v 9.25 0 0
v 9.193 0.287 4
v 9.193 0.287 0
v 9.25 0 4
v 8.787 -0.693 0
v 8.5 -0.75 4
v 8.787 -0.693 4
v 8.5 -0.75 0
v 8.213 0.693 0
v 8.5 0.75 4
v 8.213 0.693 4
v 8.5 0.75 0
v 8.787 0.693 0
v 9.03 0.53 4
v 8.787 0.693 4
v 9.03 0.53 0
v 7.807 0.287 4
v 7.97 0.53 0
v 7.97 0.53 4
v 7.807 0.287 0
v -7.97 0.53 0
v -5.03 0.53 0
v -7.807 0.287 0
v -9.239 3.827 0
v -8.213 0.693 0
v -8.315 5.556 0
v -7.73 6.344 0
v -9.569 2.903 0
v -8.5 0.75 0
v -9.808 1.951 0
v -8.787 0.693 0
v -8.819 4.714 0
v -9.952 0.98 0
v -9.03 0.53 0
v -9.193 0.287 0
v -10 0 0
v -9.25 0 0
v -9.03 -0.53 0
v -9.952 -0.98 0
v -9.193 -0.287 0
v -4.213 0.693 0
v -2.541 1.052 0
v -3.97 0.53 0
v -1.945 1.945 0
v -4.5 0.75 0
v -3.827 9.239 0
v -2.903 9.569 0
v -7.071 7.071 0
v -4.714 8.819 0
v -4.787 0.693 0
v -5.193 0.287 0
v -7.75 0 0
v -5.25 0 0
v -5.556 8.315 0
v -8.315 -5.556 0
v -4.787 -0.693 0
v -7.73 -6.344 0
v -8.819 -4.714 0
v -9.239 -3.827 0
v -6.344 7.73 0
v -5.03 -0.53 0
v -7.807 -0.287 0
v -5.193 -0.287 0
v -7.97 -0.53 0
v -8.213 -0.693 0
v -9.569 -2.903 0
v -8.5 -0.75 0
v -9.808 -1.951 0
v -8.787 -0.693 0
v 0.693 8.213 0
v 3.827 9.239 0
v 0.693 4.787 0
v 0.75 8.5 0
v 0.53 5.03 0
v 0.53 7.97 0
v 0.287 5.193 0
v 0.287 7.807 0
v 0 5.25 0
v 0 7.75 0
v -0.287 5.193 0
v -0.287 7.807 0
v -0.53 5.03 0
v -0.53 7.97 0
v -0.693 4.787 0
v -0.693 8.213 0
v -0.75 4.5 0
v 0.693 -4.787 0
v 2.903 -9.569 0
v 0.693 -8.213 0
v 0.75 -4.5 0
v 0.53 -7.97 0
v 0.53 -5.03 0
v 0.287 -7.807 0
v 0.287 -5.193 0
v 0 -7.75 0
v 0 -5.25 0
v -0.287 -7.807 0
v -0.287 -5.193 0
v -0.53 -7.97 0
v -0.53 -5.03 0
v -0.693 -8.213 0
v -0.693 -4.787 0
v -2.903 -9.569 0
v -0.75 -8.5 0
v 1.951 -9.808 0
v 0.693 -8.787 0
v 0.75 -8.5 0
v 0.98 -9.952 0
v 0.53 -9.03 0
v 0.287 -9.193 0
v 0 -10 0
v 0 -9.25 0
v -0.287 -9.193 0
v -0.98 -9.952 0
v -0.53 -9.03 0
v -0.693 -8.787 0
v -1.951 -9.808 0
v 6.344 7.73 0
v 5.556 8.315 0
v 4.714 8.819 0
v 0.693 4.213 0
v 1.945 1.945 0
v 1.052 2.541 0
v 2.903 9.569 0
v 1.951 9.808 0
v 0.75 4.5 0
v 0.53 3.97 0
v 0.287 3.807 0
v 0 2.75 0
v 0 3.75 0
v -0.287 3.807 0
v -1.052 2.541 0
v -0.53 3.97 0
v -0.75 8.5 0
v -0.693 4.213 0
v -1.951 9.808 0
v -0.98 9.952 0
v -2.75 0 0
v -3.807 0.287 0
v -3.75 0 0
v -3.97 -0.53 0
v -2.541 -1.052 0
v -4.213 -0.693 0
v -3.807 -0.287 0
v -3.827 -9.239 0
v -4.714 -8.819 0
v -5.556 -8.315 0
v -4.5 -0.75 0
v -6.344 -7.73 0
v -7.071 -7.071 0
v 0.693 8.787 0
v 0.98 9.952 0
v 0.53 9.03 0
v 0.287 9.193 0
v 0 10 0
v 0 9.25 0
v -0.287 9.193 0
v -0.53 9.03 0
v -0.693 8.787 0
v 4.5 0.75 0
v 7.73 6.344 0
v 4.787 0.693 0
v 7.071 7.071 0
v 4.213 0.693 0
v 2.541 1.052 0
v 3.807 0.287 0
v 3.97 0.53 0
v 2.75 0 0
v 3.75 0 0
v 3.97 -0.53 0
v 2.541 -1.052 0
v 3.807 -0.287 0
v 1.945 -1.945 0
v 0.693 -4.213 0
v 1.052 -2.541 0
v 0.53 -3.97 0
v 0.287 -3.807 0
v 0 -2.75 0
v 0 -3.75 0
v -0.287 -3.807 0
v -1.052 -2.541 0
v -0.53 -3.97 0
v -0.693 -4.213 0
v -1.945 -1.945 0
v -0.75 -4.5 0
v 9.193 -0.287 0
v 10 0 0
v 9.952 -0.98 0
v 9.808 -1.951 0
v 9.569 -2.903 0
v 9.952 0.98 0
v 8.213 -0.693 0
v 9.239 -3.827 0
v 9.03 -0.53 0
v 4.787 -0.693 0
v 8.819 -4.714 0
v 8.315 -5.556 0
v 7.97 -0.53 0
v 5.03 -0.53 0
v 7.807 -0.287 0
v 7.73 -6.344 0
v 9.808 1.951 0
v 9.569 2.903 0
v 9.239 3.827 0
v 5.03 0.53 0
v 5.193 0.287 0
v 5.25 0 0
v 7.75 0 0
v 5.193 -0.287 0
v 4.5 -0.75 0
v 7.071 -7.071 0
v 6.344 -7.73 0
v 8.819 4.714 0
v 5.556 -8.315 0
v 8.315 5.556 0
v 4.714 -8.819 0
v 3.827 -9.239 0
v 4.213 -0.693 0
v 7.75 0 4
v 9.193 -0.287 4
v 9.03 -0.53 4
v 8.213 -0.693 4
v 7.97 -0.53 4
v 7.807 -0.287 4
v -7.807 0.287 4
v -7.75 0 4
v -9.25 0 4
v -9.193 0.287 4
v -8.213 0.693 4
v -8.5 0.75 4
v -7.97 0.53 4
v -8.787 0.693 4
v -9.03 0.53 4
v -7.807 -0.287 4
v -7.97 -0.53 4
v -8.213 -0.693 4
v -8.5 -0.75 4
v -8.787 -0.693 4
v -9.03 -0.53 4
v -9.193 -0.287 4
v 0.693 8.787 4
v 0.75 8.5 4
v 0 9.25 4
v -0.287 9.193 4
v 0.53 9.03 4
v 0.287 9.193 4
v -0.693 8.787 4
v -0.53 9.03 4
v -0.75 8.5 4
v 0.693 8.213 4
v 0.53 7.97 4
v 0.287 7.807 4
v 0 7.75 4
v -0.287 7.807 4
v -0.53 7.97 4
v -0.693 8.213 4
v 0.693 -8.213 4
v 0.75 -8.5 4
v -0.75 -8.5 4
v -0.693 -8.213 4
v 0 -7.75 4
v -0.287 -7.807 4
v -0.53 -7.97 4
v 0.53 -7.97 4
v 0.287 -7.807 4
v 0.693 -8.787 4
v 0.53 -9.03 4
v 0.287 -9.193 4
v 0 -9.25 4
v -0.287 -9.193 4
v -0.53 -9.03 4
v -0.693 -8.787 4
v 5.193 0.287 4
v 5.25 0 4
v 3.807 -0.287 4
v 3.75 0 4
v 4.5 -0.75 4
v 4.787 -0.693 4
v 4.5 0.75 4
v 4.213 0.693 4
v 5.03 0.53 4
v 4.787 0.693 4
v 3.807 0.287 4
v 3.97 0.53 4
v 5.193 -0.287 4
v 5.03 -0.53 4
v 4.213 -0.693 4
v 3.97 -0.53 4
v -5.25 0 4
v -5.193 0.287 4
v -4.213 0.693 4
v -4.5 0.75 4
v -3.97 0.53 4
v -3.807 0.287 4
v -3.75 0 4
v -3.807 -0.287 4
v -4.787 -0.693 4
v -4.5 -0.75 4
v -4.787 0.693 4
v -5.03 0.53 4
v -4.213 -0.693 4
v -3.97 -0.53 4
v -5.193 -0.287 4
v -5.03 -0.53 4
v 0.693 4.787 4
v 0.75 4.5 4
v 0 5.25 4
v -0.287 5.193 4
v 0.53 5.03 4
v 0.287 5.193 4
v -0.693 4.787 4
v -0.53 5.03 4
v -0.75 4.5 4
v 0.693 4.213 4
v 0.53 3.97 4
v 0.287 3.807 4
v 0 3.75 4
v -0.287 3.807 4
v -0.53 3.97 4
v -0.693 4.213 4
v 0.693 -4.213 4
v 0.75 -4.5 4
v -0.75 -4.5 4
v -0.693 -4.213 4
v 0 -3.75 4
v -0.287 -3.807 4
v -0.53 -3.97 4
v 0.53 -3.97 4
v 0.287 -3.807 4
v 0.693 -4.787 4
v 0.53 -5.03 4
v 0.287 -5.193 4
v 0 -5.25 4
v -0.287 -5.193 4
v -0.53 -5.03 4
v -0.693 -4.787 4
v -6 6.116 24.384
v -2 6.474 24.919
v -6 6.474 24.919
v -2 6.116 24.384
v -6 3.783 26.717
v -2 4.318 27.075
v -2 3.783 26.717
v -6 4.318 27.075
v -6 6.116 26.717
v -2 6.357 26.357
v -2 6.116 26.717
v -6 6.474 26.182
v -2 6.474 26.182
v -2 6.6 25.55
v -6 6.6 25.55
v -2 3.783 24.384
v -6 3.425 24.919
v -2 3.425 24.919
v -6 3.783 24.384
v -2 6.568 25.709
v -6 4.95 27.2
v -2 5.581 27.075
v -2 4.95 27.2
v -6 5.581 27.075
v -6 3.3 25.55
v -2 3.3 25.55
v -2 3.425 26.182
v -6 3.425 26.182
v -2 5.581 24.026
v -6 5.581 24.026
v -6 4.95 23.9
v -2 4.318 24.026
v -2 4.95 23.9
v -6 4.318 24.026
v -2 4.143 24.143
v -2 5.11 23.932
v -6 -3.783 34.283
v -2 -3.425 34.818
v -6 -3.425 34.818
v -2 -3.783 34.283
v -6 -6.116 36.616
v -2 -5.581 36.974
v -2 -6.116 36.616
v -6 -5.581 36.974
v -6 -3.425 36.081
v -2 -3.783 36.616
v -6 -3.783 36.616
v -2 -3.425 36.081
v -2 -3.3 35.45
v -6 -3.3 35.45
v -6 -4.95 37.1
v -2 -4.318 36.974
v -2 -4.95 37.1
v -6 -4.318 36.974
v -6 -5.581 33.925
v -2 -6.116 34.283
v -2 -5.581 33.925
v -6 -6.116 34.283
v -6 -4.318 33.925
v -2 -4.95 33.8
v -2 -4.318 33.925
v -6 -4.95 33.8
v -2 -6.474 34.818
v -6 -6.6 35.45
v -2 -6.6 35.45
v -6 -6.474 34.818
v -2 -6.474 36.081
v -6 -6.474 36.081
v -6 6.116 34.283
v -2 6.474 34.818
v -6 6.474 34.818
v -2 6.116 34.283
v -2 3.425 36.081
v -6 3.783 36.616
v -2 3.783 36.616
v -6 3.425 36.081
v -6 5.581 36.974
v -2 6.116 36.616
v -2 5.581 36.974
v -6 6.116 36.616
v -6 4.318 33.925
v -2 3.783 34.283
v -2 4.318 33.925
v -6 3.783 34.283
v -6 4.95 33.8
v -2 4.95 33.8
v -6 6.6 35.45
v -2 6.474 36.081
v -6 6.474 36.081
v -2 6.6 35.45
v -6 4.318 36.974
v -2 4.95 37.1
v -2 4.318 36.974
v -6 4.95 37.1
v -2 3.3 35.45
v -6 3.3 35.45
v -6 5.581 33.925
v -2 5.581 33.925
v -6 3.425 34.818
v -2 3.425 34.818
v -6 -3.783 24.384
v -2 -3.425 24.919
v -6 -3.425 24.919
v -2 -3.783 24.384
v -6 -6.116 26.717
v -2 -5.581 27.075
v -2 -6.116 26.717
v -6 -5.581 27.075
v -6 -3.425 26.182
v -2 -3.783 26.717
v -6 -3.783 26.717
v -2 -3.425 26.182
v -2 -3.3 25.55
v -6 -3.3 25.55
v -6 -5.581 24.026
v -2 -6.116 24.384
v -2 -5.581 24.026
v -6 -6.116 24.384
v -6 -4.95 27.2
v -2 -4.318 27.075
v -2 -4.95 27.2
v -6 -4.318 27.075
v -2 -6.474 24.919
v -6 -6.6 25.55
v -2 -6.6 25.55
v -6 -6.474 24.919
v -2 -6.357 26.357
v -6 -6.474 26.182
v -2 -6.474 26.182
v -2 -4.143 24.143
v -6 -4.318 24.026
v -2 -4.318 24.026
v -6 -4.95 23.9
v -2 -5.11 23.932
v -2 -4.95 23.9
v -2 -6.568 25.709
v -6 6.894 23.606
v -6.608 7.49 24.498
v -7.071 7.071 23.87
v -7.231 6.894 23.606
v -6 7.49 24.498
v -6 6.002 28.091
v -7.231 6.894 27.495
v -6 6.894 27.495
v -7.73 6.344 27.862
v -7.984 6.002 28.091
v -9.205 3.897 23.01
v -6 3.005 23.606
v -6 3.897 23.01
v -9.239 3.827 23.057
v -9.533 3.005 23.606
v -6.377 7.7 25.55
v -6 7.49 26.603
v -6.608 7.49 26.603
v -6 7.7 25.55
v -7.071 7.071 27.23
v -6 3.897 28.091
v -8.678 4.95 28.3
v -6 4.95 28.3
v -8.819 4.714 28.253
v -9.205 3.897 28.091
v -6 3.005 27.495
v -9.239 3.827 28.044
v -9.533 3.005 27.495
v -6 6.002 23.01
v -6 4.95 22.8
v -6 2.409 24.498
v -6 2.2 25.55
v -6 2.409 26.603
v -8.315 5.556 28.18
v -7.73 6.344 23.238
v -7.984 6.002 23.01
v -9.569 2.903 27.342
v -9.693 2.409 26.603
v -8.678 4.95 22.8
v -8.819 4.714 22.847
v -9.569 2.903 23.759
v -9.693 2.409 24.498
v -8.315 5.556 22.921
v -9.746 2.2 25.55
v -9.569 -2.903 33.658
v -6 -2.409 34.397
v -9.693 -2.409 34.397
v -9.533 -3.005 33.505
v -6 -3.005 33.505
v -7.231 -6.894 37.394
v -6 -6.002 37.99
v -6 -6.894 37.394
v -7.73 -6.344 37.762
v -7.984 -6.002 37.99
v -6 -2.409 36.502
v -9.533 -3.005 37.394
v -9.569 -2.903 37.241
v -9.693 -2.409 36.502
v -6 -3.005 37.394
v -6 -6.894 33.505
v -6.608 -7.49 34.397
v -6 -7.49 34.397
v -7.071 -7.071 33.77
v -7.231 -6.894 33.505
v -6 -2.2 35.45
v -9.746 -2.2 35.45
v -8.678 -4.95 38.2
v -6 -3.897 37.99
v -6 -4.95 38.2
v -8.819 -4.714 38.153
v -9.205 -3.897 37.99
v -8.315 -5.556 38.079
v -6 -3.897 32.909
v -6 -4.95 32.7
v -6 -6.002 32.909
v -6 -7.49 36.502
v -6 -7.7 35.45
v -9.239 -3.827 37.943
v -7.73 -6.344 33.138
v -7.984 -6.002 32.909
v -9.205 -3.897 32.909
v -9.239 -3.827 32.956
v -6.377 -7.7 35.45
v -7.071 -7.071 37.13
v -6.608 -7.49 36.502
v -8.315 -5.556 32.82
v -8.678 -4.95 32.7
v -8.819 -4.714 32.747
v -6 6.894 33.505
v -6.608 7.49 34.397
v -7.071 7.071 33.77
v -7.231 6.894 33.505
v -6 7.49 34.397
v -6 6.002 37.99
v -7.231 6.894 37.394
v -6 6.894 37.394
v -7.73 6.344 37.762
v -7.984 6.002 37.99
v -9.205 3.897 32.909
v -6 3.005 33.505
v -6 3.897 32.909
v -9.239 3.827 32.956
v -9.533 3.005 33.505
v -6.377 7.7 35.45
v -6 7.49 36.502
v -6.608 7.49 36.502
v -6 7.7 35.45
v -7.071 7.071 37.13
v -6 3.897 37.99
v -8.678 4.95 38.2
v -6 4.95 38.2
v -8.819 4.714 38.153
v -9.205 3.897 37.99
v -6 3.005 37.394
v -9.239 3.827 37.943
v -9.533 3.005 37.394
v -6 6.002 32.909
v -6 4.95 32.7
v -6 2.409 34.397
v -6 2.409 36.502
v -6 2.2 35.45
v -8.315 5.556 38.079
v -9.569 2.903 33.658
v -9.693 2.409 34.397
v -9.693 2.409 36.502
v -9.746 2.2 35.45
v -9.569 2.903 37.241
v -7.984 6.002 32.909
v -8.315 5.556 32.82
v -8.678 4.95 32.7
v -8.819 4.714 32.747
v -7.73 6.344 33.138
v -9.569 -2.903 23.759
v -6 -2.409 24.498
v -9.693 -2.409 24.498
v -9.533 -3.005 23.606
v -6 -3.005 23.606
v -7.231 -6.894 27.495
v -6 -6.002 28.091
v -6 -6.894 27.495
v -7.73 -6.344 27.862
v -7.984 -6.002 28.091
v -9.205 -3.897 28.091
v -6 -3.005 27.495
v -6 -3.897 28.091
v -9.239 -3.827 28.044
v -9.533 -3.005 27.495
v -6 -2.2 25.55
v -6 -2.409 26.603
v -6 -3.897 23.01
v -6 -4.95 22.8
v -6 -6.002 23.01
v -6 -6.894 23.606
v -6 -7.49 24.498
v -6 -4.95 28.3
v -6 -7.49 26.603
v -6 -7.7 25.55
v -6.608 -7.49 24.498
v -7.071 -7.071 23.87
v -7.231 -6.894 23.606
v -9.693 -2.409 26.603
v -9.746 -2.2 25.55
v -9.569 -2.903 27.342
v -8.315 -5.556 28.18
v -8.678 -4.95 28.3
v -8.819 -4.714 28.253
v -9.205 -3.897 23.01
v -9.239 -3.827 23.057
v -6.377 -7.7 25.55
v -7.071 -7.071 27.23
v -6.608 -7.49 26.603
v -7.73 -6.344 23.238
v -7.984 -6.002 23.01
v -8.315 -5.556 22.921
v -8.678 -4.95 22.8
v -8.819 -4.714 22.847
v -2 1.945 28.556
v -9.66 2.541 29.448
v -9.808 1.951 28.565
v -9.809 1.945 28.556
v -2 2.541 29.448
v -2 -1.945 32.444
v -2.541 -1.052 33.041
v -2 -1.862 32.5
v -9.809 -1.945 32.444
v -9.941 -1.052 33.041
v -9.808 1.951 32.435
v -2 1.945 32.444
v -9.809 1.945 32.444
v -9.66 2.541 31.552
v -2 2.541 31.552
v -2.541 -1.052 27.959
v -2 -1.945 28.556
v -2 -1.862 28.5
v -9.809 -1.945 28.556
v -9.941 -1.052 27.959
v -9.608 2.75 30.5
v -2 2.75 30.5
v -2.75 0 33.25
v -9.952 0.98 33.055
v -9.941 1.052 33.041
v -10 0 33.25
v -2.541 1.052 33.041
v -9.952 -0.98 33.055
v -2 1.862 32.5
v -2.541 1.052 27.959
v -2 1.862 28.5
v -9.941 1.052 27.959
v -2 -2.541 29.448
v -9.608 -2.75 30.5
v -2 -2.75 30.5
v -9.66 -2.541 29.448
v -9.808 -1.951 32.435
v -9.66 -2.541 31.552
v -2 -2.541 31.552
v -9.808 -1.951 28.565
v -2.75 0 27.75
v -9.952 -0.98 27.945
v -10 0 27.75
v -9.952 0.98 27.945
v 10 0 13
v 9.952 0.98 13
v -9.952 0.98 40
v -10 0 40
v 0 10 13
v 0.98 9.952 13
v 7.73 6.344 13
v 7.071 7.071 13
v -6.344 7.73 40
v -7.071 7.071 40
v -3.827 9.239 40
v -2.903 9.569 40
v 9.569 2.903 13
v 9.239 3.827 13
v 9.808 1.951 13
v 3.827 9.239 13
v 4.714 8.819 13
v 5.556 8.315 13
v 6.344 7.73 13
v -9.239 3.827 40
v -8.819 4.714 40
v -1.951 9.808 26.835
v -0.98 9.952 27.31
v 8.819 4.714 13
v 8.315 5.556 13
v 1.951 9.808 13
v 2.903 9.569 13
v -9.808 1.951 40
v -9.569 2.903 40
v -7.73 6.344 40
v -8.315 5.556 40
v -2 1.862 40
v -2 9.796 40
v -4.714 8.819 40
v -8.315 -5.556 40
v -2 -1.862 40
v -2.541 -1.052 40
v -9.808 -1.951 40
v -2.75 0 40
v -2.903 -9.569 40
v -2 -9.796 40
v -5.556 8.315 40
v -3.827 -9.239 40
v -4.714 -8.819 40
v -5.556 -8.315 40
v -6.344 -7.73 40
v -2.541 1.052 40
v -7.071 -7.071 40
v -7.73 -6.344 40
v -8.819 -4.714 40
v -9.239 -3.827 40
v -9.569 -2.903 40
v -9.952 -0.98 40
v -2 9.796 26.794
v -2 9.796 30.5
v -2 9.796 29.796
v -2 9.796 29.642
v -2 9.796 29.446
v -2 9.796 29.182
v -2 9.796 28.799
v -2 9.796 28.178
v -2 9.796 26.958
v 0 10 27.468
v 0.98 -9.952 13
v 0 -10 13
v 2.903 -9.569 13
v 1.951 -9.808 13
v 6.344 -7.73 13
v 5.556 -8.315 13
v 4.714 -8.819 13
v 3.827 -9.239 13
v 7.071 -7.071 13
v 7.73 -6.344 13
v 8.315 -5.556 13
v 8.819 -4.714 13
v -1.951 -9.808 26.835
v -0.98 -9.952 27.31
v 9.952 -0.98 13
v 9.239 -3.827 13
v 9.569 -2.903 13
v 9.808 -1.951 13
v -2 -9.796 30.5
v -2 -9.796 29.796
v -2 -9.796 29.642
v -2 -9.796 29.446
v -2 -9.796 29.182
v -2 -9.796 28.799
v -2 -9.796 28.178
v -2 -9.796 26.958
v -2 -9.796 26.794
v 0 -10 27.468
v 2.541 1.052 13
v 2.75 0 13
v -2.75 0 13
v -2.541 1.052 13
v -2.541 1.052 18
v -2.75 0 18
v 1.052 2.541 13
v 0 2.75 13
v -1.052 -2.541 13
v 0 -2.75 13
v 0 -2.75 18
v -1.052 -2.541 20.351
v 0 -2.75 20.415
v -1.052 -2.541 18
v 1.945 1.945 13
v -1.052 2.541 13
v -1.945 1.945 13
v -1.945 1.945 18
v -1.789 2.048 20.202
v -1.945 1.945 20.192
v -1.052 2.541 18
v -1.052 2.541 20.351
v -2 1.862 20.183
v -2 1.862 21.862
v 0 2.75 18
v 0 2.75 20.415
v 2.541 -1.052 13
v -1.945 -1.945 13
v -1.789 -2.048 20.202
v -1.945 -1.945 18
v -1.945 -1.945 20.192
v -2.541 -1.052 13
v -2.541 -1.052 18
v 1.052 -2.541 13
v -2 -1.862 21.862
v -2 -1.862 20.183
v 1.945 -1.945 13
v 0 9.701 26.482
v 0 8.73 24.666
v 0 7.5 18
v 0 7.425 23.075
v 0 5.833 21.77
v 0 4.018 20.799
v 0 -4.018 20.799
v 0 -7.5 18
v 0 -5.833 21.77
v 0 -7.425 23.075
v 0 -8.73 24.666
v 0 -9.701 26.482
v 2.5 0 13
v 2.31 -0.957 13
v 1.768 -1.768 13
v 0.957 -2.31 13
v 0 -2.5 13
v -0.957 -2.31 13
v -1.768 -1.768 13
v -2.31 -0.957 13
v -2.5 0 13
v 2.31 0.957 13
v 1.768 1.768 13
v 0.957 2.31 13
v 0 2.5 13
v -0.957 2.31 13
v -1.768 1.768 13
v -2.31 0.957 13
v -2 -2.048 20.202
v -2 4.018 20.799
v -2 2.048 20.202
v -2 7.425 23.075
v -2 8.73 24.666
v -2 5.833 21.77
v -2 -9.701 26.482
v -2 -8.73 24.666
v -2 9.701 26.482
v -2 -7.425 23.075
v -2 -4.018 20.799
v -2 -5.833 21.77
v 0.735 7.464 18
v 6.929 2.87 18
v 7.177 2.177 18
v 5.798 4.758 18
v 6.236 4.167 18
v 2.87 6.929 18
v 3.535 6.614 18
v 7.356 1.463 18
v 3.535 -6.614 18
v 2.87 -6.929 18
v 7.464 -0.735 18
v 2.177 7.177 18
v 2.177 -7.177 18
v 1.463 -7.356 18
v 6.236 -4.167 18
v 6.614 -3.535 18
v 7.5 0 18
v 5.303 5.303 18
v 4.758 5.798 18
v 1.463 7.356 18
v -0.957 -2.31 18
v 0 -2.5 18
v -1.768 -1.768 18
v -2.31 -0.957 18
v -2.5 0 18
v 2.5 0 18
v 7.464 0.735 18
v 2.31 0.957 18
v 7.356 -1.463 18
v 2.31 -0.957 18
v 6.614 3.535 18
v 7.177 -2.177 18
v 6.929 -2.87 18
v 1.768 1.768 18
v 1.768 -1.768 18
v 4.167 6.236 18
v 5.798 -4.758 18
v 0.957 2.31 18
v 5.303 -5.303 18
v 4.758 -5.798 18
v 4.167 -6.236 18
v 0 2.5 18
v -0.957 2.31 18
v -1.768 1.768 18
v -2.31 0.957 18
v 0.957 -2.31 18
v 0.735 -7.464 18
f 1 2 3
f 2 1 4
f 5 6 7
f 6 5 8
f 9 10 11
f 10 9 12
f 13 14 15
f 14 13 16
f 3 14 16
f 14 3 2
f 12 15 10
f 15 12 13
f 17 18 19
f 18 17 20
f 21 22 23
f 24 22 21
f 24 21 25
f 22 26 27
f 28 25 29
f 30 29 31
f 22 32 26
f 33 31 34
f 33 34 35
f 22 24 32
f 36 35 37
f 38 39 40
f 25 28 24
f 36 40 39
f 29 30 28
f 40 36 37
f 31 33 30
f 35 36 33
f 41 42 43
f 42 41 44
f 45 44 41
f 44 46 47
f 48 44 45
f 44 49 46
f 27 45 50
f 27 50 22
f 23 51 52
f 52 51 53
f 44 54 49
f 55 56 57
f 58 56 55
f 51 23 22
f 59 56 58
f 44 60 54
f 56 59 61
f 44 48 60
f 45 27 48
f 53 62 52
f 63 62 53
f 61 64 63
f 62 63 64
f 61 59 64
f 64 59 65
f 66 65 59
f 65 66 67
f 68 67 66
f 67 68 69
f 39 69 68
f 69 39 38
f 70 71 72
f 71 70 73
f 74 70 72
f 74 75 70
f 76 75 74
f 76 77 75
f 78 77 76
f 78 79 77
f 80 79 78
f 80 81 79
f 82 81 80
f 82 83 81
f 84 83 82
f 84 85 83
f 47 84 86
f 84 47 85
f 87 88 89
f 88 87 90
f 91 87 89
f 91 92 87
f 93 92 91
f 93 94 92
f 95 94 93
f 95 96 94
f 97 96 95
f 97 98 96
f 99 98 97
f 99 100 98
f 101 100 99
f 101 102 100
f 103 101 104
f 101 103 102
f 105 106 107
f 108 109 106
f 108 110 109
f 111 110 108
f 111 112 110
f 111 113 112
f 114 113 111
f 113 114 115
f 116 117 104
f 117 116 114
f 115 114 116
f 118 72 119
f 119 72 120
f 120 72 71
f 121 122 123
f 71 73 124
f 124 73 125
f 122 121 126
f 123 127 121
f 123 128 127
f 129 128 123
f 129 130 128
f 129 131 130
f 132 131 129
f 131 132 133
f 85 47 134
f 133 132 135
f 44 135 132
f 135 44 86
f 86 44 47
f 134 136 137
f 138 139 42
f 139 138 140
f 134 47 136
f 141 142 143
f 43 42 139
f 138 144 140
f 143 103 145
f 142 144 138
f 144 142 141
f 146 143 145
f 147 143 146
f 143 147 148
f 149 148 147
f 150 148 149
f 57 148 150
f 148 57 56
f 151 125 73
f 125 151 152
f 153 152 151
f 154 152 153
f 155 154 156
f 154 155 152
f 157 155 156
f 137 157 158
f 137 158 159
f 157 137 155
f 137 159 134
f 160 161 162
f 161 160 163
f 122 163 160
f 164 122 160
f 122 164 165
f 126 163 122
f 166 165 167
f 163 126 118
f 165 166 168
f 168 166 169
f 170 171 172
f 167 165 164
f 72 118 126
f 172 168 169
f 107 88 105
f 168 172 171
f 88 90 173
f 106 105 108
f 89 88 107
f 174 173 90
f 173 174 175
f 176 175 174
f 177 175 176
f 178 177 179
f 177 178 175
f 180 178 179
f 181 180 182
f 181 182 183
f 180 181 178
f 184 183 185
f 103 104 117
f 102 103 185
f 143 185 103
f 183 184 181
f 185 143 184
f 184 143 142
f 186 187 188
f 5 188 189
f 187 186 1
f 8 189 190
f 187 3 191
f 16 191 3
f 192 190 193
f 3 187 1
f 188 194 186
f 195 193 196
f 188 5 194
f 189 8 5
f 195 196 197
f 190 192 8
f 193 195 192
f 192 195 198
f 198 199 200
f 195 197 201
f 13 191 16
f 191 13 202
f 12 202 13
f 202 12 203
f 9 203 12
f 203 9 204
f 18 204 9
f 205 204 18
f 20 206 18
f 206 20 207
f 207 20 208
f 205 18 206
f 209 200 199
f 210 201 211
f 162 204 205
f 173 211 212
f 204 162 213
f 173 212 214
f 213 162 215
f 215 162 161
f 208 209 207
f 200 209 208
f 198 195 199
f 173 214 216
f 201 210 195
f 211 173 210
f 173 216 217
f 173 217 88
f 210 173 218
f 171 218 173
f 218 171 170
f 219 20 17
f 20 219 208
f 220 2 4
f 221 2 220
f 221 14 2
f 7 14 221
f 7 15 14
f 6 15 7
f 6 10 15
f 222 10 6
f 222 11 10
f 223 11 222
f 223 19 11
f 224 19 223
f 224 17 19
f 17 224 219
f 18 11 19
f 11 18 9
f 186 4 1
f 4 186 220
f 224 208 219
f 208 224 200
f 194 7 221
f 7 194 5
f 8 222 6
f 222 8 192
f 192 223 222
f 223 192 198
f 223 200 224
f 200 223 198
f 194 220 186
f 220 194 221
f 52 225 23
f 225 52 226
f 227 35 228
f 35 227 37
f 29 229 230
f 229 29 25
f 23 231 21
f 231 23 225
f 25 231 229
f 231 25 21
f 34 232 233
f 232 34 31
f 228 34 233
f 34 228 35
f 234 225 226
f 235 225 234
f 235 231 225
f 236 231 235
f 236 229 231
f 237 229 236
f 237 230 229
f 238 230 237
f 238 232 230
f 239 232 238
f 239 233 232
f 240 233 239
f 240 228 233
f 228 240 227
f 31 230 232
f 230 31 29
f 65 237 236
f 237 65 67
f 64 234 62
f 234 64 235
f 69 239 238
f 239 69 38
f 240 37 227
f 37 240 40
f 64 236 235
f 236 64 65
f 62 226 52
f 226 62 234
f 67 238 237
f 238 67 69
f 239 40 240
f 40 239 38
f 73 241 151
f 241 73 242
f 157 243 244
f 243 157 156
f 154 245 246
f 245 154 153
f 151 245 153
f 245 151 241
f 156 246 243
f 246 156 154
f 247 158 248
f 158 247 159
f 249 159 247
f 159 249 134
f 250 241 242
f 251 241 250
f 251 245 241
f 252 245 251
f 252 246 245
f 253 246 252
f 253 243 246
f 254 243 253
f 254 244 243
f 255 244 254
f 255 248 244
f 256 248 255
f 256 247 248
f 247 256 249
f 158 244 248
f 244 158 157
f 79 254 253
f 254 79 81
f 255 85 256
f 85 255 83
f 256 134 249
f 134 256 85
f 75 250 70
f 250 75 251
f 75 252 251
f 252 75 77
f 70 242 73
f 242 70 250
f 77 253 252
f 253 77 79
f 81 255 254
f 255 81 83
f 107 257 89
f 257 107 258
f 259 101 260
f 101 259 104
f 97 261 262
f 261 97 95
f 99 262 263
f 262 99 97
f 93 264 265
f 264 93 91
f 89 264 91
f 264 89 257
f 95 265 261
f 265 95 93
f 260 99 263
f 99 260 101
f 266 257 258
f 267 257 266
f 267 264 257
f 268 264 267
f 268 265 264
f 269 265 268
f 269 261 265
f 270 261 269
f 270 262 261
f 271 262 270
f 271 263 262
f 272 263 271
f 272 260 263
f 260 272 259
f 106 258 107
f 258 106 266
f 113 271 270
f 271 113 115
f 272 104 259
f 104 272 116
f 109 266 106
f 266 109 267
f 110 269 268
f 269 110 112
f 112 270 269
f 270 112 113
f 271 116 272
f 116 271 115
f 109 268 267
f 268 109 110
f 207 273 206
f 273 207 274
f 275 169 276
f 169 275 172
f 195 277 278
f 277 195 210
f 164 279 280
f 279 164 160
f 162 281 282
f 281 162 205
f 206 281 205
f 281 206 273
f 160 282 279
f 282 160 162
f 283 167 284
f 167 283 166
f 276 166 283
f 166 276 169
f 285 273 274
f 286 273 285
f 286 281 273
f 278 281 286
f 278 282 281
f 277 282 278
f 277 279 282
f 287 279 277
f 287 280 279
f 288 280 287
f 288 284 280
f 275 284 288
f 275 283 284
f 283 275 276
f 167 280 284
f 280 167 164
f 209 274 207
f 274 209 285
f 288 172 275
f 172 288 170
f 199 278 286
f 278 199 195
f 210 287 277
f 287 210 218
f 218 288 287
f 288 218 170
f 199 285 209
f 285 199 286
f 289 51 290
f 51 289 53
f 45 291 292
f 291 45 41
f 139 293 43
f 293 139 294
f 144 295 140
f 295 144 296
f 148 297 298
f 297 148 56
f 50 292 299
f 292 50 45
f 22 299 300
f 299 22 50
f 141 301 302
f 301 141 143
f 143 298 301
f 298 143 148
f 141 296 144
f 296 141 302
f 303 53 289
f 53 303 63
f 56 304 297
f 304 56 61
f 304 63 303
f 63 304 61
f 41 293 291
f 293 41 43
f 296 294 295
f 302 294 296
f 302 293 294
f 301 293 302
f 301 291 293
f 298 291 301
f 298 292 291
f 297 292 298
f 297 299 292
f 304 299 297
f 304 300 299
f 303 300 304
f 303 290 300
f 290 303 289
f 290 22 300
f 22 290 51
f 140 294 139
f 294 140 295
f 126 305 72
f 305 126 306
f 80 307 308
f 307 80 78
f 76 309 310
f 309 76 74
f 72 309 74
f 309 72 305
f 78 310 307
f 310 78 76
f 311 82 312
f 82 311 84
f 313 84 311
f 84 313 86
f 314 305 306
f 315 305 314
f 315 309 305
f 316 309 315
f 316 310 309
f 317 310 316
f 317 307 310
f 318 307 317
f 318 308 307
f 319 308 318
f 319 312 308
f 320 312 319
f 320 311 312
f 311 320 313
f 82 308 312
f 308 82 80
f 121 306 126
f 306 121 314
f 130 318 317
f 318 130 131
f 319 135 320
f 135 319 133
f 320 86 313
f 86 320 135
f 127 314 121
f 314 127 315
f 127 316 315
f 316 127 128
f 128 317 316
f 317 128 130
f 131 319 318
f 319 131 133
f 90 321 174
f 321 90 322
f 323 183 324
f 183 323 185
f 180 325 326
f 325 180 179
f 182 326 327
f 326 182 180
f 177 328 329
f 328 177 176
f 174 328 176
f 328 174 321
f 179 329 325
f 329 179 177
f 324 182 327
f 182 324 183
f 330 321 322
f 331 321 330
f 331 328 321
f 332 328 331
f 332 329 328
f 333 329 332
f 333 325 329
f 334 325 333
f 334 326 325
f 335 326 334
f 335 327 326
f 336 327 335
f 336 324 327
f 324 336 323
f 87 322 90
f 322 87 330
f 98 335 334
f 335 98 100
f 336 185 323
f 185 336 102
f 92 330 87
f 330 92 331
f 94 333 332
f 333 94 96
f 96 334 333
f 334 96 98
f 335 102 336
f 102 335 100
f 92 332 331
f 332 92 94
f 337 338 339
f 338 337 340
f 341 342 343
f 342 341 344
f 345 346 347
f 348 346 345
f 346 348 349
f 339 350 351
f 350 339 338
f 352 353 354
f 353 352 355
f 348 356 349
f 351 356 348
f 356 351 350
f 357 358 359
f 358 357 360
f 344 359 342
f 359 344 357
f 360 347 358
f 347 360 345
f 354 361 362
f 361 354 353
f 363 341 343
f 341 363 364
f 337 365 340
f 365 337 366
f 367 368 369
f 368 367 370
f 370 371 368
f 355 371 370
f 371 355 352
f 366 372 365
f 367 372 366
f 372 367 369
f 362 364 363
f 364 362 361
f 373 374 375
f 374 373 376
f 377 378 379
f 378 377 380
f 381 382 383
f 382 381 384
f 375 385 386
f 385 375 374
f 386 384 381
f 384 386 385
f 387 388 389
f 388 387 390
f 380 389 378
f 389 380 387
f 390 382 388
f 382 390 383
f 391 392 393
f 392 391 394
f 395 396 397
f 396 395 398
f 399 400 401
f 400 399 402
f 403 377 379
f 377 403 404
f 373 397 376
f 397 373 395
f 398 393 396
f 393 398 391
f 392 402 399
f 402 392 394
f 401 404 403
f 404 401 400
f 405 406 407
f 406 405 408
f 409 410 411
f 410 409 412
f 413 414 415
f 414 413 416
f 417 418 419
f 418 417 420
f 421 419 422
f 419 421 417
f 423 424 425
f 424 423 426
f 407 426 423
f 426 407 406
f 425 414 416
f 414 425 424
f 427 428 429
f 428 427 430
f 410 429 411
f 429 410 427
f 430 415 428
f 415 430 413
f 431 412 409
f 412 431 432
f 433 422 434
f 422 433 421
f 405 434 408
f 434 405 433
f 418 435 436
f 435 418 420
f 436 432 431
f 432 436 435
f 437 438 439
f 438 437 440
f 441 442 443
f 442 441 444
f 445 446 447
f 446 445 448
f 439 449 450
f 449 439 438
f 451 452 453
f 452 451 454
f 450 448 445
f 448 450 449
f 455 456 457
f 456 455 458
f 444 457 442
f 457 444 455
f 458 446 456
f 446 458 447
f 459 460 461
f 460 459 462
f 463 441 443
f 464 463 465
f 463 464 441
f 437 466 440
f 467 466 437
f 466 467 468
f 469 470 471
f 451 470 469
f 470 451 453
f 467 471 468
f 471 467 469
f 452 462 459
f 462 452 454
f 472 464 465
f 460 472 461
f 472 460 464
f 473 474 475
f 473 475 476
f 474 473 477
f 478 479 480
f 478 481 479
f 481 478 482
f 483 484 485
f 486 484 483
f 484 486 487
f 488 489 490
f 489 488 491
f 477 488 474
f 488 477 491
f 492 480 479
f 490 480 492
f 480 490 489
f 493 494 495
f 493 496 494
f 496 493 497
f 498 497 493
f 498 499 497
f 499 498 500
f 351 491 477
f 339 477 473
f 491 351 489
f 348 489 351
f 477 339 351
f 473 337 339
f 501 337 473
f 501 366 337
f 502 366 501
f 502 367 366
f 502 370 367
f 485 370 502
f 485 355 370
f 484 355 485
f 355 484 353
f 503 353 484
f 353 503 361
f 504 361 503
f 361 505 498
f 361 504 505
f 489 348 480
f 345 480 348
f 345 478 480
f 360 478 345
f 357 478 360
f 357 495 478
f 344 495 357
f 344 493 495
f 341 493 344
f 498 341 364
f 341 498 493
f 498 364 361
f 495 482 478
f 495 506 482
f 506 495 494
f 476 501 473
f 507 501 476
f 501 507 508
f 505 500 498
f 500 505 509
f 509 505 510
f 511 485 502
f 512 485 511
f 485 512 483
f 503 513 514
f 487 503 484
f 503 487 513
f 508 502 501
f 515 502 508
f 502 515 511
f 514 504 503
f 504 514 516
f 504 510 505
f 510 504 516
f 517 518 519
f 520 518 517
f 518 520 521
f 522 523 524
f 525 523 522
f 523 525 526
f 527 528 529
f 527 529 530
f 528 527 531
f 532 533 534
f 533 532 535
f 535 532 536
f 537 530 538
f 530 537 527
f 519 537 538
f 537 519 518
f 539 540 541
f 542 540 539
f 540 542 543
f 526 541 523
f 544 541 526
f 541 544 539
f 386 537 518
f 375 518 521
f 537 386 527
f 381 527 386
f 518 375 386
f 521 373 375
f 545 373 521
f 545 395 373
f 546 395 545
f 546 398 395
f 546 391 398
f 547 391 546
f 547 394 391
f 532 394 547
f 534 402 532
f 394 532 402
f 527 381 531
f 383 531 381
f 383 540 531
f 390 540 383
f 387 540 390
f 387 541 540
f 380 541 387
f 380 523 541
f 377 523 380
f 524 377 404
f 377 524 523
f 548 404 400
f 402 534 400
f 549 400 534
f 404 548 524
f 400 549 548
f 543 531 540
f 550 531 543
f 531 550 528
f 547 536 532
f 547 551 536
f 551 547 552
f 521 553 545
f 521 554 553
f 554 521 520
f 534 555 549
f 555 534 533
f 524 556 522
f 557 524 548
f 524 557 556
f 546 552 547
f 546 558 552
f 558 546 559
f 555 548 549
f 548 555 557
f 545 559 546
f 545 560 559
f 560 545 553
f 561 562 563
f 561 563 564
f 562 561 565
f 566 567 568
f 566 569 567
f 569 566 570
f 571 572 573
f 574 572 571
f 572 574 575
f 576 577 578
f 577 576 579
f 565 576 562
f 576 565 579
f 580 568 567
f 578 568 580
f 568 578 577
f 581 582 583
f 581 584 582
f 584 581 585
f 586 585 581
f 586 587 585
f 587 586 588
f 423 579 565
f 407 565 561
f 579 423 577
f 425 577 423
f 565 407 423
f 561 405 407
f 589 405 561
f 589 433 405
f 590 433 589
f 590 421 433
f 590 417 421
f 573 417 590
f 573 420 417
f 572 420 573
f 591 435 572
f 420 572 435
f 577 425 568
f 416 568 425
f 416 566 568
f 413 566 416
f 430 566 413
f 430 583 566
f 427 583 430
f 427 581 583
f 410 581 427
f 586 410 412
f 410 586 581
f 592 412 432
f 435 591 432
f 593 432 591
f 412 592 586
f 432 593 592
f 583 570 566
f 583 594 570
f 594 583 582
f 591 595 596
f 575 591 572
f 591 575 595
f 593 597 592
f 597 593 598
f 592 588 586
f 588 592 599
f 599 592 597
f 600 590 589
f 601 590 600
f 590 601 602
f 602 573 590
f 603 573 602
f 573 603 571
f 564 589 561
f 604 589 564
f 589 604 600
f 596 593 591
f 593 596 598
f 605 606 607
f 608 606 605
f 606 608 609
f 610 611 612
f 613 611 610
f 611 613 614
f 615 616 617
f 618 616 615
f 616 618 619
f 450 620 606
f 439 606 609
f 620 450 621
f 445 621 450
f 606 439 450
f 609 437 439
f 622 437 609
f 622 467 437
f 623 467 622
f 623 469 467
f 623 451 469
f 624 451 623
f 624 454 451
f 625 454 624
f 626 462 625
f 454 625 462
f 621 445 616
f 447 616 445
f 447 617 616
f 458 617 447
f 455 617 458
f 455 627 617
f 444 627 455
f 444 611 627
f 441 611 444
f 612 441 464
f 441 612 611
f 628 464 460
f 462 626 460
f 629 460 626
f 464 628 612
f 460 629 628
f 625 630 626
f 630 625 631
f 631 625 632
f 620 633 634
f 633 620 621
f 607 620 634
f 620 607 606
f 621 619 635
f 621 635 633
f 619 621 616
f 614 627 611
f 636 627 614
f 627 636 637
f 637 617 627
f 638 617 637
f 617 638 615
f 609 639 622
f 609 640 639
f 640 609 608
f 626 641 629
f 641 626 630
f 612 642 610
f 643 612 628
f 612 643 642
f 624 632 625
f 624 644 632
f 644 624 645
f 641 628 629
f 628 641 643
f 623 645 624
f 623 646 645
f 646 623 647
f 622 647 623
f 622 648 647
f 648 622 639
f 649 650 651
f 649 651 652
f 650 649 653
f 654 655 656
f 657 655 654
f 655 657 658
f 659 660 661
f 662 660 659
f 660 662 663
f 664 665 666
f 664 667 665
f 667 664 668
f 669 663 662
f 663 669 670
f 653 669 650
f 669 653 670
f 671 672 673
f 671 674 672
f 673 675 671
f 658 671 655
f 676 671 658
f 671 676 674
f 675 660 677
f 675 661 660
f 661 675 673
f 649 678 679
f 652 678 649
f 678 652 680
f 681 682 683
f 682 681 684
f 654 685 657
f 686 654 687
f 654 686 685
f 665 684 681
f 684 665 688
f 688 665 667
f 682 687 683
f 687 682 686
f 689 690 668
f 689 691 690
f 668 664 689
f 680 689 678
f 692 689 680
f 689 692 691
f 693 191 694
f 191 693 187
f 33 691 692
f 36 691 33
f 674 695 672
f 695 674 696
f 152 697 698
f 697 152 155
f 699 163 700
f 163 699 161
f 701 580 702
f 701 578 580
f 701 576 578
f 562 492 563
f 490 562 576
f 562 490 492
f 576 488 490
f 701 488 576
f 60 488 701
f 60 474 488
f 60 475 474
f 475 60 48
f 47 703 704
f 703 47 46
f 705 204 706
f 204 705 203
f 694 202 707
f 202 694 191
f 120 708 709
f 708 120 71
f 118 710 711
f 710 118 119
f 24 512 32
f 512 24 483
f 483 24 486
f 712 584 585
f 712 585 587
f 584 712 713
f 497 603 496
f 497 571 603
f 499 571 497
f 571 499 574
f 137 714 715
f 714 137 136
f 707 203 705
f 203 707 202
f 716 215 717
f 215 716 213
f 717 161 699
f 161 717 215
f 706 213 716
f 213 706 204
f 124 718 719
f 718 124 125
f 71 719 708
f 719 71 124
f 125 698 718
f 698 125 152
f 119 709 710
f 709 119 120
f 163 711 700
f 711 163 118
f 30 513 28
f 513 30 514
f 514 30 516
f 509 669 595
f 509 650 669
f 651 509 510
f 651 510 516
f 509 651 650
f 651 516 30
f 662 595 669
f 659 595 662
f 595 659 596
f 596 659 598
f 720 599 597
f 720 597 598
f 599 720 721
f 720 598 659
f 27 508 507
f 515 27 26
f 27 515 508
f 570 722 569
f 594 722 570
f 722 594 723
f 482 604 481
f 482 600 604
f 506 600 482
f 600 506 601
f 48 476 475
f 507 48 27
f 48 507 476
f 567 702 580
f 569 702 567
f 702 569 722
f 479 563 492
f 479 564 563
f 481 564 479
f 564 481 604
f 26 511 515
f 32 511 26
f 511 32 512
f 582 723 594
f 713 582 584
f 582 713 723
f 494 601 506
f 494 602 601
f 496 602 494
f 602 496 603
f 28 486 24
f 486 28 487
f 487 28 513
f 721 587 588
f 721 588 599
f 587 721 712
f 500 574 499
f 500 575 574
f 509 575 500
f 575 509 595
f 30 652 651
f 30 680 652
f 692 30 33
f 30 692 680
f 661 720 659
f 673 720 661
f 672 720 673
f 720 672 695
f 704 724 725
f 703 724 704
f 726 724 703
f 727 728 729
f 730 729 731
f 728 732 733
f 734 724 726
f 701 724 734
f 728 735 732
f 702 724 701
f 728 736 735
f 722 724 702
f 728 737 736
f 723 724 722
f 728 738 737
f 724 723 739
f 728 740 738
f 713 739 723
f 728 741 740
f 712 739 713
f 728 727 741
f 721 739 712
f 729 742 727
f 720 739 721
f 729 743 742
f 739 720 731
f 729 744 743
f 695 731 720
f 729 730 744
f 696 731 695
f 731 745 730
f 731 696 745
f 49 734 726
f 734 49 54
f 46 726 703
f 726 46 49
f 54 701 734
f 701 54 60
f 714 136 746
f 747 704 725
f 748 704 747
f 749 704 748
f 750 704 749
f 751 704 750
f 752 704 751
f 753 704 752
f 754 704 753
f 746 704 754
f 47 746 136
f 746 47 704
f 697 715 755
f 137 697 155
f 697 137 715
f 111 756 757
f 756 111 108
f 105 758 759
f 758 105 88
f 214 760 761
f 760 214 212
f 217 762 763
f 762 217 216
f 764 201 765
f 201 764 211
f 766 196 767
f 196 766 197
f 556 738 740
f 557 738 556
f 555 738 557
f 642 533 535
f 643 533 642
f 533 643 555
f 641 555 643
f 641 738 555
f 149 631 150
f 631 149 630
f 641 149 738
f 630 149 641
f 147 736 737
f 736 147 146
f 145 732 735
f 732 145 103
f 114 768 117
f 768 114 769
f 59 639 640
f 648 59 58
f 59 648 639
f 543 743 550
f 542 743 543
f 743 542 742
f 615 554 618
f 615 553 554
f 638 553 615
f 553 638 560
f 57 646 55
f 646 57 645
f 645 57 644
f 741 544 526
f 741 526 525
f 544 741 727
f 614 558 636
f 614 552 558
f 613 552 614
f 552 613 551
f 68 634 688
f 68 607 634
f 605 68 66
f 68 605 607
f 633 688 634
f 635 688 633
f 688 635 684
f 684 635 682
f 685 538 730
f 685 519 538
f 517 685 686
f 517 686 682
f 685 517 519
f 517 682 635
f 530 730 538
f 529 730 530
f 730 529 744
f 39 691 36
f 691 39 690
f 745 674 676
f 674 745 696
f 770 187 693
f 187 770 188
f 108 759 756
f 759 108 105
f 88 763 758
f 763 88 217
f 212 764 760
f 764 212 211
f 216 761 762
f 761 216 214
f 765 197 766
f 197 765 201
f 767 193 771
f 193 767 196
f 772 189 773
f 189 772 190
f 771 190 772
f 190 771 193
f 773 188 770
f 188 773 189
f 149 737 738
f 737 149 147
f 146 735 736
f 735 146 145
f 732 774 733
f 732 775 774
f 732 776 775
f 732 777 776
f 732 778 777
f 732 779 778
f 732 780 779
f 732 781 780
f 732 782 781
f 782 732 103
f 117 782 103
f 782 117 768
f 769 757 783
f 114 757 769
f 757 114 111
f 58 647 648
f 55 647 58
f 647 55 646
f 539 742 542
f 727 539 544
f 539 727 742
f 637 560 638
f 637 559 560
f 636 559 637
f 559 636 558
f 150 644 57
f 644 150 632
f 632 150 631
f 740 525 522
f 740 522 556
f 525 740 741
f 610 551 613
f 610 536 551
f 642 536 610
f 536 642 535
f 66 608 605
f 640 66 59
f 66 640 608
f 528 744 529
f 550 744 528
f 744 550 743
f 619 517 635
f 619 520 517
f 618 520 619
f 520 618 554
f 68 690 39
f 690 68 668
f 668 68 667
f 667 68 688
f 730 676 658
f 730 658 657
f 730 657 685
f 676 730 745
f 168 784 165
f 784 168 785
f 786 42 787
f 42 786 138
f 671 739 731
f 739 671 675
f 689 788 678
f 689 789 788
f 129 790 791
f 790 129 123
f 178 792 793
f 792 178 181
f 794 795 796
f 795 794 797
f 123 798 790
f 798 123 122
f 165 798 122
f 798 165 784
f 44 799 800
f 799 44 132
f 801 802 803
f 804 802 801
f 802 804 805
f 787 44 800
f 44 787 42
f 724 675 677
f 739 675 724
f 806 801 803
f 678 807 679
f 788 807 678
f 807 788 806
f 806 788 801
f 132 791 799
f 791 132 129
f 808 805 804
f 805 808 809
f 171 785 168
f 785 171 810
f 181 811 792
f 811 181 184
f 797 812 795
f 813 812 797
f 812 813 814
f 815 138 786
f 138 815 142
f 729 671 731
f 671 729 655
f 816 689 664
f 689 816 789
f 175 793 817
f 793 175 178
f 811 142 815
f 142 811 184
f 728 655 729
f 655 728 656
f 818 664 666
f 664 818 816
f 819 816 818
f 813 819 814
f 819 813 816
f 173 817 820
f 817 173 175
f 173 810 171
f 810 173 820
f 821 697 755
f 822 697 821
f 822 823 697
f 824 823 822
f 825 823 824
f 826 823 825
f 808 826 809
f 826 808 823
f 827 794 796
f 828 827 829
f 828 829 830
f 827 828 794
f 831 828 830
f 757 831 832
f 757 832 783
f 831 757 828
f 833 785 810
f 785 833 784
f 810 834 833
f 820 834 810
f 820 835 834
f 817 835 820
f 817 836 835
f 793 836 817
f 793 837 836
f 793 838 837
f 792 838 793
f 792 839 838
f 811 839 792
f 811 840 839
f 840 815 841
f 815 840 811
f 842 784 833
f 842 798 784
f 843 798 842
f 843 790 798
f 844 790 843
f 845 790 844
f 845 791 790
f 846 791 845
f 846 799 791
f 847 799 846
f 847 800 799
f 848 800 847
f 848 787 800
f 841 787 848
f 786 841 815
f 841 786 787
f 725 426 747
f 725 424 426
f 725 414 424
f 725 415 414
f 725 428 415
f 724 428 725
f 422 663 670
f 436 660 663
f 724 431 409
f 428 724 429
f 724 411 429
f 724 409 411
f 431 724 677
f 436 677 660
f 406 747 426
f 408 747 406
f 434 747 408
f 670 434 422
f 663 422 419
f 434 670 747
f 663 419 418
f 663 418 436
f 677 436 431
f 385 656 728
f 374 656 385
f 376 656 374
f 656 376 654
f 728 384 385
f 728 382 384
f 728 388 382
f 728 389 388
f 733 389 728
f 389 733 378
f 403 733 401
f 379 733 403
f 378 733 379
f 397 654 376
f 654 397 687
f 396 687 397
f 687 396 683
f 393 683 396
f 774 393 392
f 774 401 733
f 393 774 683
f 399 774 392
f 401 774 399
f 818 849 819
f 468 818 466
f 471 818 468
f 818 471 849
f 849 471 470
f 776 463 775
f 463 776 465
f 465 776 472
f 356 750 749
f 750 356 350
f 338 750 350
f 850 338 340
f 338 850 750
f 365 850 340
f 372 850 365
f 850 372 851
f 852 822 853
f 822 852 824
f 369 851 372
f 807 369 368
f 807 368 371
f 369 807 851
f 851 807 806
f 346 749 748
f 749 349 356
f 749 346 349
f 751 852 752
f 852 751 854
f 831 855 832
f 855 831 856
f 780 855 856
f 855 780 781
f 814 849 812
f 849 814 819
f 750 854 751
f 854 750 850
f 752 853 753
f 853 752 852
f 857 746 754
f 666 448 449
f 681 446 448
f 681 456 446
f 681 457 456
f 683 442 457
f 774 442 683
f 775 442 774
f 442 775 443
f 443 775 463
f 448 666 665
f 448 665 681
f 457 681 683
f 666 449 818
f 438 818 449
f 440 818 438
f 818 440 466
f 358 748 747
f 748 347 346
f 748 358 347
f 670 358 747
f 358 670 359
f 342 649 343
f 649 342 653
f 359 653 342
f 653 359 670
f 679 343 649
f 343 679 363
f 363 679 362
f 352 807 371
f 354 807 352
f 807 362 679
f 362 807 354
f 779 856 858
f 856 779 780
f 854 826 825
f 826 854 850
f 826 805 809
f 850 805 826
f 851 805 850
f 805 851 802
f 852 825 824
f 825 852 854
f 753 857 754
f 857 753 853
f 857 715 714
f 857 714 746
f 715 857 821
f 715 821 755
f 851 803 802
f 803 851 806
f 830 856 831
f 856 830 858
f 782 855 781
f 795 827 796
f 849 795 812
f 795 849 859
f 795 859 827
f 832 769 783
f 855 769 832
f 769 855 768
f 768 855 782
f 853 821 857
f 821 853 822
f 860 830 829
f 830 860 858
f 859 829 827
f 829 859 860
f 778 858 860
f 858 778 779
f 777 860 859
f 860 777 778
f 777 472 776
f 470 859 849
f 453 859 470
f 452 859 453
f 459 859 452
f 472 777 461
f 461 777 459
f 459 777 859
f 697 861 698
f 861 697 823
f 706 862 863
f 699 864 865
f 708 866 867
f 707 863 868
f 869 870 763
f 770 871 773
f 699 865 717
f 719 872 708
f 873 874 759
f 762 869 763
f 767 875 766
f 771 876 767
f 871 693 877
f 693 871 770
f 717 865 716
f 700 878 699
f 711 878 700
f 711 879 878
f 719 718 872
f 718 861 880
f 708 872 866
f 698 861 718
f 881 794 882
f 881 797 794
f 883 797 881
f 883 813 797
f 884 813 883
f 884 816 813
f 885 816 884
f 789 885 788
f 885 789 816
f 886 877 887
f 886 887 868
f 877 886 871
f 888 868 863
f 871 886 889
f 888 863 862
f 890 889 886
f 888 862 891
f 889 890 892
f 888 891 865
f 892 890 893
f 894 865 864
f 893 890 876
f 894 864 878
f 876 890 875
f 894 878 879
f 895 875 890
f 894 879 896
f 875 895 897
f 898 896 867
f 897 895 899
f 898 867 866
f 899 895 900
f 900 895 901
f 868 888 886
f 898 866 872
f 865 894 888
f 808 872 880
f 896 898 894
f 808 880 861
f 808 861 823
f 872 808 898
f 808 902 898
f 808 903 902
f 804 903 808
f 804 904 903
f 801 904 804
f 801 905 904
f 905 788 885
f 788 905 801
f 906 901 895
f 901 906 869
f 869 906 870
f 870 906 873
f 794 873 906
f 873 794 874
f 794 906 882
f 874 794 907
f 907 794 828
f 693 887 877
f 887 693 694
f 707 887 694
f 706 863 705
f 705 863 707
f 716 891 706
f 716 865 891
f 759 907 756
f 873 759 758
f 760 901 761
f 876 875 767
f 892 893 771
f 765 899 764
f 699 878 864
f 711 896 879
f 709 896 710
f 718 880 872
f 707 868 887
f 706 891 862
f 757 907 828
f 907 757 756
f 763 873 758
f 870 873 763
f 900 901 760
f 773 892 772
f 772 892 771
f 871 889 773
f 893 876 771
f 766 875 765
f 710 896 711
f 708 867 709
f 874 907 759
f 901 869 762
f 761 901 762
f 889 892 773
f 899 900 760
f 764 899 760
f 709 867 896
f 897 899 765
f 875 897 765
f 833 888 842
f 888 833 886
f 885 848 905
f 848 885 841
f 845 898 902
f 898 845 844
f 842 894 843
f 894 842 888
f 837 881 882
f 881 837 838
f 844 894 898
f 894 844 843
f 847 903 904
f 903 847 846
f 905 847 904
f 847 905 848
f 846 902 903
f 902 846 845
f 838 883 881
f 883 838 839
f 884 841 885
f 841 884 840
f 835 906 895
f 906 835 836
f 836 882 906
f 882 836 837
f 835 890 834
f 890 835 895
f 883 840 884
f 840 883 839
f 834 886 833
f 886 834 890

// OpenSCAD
fn = 64;

module wheelcutout(r=17/2,d=2,h=4) {
    translate([r,0,0])
    cylinder(d=d,h=h, $fn=16);
    
    translate([-r,0,0])
    cylinder(d=d,h=h, $fn=16);
    
    translate([0,r,0])
    cylinder(d=d,h=h, $fn=16);
    
    translate([0,-r,0])
    cylinder(d=d,h=h, $fn=16);
}

difference() {
    cylinder(d=20,h=40,$fn=fn);
    cylinder(d=5.5,h=60, $fn=16);
    
    wheelcutout(r=17/2, d=1.5, h=4);
    wheelcutout(r=9/2, d=1.5, h=4);
    
    translate([0,-10,13])
    cube([12,20,50]);
    
    translate([-2,-10,31])
    cube([10,20,50]);
    
    /*translate([-13,-10,15])
    cube([10,20,50]);*/
    
    
    translate([0,0,30.5])
    rotate([0,90,0])
    translate([0,0,-20])
    rotate([0,0,45]) {
        wheelcutout(r=7, d=3.3, h=40);
        translate([0,0,8])
        wheelcutout(r=7, d=5.5, h=6);
        cylinder(h=40,d=5.5, $fn=16);
    }
    
        translate([0,0,30.5])
        rotate([0,90,0])
        translate([0,0,-2])
            cylinder(h=10,d=21,$fn=32);
}
    
difference() {
    translate([0,0,13])
    cylinder(d1=20,d2=15, h=5, $fn=fn);
    cylinder(d=5,h=60, $fn=16);
}
